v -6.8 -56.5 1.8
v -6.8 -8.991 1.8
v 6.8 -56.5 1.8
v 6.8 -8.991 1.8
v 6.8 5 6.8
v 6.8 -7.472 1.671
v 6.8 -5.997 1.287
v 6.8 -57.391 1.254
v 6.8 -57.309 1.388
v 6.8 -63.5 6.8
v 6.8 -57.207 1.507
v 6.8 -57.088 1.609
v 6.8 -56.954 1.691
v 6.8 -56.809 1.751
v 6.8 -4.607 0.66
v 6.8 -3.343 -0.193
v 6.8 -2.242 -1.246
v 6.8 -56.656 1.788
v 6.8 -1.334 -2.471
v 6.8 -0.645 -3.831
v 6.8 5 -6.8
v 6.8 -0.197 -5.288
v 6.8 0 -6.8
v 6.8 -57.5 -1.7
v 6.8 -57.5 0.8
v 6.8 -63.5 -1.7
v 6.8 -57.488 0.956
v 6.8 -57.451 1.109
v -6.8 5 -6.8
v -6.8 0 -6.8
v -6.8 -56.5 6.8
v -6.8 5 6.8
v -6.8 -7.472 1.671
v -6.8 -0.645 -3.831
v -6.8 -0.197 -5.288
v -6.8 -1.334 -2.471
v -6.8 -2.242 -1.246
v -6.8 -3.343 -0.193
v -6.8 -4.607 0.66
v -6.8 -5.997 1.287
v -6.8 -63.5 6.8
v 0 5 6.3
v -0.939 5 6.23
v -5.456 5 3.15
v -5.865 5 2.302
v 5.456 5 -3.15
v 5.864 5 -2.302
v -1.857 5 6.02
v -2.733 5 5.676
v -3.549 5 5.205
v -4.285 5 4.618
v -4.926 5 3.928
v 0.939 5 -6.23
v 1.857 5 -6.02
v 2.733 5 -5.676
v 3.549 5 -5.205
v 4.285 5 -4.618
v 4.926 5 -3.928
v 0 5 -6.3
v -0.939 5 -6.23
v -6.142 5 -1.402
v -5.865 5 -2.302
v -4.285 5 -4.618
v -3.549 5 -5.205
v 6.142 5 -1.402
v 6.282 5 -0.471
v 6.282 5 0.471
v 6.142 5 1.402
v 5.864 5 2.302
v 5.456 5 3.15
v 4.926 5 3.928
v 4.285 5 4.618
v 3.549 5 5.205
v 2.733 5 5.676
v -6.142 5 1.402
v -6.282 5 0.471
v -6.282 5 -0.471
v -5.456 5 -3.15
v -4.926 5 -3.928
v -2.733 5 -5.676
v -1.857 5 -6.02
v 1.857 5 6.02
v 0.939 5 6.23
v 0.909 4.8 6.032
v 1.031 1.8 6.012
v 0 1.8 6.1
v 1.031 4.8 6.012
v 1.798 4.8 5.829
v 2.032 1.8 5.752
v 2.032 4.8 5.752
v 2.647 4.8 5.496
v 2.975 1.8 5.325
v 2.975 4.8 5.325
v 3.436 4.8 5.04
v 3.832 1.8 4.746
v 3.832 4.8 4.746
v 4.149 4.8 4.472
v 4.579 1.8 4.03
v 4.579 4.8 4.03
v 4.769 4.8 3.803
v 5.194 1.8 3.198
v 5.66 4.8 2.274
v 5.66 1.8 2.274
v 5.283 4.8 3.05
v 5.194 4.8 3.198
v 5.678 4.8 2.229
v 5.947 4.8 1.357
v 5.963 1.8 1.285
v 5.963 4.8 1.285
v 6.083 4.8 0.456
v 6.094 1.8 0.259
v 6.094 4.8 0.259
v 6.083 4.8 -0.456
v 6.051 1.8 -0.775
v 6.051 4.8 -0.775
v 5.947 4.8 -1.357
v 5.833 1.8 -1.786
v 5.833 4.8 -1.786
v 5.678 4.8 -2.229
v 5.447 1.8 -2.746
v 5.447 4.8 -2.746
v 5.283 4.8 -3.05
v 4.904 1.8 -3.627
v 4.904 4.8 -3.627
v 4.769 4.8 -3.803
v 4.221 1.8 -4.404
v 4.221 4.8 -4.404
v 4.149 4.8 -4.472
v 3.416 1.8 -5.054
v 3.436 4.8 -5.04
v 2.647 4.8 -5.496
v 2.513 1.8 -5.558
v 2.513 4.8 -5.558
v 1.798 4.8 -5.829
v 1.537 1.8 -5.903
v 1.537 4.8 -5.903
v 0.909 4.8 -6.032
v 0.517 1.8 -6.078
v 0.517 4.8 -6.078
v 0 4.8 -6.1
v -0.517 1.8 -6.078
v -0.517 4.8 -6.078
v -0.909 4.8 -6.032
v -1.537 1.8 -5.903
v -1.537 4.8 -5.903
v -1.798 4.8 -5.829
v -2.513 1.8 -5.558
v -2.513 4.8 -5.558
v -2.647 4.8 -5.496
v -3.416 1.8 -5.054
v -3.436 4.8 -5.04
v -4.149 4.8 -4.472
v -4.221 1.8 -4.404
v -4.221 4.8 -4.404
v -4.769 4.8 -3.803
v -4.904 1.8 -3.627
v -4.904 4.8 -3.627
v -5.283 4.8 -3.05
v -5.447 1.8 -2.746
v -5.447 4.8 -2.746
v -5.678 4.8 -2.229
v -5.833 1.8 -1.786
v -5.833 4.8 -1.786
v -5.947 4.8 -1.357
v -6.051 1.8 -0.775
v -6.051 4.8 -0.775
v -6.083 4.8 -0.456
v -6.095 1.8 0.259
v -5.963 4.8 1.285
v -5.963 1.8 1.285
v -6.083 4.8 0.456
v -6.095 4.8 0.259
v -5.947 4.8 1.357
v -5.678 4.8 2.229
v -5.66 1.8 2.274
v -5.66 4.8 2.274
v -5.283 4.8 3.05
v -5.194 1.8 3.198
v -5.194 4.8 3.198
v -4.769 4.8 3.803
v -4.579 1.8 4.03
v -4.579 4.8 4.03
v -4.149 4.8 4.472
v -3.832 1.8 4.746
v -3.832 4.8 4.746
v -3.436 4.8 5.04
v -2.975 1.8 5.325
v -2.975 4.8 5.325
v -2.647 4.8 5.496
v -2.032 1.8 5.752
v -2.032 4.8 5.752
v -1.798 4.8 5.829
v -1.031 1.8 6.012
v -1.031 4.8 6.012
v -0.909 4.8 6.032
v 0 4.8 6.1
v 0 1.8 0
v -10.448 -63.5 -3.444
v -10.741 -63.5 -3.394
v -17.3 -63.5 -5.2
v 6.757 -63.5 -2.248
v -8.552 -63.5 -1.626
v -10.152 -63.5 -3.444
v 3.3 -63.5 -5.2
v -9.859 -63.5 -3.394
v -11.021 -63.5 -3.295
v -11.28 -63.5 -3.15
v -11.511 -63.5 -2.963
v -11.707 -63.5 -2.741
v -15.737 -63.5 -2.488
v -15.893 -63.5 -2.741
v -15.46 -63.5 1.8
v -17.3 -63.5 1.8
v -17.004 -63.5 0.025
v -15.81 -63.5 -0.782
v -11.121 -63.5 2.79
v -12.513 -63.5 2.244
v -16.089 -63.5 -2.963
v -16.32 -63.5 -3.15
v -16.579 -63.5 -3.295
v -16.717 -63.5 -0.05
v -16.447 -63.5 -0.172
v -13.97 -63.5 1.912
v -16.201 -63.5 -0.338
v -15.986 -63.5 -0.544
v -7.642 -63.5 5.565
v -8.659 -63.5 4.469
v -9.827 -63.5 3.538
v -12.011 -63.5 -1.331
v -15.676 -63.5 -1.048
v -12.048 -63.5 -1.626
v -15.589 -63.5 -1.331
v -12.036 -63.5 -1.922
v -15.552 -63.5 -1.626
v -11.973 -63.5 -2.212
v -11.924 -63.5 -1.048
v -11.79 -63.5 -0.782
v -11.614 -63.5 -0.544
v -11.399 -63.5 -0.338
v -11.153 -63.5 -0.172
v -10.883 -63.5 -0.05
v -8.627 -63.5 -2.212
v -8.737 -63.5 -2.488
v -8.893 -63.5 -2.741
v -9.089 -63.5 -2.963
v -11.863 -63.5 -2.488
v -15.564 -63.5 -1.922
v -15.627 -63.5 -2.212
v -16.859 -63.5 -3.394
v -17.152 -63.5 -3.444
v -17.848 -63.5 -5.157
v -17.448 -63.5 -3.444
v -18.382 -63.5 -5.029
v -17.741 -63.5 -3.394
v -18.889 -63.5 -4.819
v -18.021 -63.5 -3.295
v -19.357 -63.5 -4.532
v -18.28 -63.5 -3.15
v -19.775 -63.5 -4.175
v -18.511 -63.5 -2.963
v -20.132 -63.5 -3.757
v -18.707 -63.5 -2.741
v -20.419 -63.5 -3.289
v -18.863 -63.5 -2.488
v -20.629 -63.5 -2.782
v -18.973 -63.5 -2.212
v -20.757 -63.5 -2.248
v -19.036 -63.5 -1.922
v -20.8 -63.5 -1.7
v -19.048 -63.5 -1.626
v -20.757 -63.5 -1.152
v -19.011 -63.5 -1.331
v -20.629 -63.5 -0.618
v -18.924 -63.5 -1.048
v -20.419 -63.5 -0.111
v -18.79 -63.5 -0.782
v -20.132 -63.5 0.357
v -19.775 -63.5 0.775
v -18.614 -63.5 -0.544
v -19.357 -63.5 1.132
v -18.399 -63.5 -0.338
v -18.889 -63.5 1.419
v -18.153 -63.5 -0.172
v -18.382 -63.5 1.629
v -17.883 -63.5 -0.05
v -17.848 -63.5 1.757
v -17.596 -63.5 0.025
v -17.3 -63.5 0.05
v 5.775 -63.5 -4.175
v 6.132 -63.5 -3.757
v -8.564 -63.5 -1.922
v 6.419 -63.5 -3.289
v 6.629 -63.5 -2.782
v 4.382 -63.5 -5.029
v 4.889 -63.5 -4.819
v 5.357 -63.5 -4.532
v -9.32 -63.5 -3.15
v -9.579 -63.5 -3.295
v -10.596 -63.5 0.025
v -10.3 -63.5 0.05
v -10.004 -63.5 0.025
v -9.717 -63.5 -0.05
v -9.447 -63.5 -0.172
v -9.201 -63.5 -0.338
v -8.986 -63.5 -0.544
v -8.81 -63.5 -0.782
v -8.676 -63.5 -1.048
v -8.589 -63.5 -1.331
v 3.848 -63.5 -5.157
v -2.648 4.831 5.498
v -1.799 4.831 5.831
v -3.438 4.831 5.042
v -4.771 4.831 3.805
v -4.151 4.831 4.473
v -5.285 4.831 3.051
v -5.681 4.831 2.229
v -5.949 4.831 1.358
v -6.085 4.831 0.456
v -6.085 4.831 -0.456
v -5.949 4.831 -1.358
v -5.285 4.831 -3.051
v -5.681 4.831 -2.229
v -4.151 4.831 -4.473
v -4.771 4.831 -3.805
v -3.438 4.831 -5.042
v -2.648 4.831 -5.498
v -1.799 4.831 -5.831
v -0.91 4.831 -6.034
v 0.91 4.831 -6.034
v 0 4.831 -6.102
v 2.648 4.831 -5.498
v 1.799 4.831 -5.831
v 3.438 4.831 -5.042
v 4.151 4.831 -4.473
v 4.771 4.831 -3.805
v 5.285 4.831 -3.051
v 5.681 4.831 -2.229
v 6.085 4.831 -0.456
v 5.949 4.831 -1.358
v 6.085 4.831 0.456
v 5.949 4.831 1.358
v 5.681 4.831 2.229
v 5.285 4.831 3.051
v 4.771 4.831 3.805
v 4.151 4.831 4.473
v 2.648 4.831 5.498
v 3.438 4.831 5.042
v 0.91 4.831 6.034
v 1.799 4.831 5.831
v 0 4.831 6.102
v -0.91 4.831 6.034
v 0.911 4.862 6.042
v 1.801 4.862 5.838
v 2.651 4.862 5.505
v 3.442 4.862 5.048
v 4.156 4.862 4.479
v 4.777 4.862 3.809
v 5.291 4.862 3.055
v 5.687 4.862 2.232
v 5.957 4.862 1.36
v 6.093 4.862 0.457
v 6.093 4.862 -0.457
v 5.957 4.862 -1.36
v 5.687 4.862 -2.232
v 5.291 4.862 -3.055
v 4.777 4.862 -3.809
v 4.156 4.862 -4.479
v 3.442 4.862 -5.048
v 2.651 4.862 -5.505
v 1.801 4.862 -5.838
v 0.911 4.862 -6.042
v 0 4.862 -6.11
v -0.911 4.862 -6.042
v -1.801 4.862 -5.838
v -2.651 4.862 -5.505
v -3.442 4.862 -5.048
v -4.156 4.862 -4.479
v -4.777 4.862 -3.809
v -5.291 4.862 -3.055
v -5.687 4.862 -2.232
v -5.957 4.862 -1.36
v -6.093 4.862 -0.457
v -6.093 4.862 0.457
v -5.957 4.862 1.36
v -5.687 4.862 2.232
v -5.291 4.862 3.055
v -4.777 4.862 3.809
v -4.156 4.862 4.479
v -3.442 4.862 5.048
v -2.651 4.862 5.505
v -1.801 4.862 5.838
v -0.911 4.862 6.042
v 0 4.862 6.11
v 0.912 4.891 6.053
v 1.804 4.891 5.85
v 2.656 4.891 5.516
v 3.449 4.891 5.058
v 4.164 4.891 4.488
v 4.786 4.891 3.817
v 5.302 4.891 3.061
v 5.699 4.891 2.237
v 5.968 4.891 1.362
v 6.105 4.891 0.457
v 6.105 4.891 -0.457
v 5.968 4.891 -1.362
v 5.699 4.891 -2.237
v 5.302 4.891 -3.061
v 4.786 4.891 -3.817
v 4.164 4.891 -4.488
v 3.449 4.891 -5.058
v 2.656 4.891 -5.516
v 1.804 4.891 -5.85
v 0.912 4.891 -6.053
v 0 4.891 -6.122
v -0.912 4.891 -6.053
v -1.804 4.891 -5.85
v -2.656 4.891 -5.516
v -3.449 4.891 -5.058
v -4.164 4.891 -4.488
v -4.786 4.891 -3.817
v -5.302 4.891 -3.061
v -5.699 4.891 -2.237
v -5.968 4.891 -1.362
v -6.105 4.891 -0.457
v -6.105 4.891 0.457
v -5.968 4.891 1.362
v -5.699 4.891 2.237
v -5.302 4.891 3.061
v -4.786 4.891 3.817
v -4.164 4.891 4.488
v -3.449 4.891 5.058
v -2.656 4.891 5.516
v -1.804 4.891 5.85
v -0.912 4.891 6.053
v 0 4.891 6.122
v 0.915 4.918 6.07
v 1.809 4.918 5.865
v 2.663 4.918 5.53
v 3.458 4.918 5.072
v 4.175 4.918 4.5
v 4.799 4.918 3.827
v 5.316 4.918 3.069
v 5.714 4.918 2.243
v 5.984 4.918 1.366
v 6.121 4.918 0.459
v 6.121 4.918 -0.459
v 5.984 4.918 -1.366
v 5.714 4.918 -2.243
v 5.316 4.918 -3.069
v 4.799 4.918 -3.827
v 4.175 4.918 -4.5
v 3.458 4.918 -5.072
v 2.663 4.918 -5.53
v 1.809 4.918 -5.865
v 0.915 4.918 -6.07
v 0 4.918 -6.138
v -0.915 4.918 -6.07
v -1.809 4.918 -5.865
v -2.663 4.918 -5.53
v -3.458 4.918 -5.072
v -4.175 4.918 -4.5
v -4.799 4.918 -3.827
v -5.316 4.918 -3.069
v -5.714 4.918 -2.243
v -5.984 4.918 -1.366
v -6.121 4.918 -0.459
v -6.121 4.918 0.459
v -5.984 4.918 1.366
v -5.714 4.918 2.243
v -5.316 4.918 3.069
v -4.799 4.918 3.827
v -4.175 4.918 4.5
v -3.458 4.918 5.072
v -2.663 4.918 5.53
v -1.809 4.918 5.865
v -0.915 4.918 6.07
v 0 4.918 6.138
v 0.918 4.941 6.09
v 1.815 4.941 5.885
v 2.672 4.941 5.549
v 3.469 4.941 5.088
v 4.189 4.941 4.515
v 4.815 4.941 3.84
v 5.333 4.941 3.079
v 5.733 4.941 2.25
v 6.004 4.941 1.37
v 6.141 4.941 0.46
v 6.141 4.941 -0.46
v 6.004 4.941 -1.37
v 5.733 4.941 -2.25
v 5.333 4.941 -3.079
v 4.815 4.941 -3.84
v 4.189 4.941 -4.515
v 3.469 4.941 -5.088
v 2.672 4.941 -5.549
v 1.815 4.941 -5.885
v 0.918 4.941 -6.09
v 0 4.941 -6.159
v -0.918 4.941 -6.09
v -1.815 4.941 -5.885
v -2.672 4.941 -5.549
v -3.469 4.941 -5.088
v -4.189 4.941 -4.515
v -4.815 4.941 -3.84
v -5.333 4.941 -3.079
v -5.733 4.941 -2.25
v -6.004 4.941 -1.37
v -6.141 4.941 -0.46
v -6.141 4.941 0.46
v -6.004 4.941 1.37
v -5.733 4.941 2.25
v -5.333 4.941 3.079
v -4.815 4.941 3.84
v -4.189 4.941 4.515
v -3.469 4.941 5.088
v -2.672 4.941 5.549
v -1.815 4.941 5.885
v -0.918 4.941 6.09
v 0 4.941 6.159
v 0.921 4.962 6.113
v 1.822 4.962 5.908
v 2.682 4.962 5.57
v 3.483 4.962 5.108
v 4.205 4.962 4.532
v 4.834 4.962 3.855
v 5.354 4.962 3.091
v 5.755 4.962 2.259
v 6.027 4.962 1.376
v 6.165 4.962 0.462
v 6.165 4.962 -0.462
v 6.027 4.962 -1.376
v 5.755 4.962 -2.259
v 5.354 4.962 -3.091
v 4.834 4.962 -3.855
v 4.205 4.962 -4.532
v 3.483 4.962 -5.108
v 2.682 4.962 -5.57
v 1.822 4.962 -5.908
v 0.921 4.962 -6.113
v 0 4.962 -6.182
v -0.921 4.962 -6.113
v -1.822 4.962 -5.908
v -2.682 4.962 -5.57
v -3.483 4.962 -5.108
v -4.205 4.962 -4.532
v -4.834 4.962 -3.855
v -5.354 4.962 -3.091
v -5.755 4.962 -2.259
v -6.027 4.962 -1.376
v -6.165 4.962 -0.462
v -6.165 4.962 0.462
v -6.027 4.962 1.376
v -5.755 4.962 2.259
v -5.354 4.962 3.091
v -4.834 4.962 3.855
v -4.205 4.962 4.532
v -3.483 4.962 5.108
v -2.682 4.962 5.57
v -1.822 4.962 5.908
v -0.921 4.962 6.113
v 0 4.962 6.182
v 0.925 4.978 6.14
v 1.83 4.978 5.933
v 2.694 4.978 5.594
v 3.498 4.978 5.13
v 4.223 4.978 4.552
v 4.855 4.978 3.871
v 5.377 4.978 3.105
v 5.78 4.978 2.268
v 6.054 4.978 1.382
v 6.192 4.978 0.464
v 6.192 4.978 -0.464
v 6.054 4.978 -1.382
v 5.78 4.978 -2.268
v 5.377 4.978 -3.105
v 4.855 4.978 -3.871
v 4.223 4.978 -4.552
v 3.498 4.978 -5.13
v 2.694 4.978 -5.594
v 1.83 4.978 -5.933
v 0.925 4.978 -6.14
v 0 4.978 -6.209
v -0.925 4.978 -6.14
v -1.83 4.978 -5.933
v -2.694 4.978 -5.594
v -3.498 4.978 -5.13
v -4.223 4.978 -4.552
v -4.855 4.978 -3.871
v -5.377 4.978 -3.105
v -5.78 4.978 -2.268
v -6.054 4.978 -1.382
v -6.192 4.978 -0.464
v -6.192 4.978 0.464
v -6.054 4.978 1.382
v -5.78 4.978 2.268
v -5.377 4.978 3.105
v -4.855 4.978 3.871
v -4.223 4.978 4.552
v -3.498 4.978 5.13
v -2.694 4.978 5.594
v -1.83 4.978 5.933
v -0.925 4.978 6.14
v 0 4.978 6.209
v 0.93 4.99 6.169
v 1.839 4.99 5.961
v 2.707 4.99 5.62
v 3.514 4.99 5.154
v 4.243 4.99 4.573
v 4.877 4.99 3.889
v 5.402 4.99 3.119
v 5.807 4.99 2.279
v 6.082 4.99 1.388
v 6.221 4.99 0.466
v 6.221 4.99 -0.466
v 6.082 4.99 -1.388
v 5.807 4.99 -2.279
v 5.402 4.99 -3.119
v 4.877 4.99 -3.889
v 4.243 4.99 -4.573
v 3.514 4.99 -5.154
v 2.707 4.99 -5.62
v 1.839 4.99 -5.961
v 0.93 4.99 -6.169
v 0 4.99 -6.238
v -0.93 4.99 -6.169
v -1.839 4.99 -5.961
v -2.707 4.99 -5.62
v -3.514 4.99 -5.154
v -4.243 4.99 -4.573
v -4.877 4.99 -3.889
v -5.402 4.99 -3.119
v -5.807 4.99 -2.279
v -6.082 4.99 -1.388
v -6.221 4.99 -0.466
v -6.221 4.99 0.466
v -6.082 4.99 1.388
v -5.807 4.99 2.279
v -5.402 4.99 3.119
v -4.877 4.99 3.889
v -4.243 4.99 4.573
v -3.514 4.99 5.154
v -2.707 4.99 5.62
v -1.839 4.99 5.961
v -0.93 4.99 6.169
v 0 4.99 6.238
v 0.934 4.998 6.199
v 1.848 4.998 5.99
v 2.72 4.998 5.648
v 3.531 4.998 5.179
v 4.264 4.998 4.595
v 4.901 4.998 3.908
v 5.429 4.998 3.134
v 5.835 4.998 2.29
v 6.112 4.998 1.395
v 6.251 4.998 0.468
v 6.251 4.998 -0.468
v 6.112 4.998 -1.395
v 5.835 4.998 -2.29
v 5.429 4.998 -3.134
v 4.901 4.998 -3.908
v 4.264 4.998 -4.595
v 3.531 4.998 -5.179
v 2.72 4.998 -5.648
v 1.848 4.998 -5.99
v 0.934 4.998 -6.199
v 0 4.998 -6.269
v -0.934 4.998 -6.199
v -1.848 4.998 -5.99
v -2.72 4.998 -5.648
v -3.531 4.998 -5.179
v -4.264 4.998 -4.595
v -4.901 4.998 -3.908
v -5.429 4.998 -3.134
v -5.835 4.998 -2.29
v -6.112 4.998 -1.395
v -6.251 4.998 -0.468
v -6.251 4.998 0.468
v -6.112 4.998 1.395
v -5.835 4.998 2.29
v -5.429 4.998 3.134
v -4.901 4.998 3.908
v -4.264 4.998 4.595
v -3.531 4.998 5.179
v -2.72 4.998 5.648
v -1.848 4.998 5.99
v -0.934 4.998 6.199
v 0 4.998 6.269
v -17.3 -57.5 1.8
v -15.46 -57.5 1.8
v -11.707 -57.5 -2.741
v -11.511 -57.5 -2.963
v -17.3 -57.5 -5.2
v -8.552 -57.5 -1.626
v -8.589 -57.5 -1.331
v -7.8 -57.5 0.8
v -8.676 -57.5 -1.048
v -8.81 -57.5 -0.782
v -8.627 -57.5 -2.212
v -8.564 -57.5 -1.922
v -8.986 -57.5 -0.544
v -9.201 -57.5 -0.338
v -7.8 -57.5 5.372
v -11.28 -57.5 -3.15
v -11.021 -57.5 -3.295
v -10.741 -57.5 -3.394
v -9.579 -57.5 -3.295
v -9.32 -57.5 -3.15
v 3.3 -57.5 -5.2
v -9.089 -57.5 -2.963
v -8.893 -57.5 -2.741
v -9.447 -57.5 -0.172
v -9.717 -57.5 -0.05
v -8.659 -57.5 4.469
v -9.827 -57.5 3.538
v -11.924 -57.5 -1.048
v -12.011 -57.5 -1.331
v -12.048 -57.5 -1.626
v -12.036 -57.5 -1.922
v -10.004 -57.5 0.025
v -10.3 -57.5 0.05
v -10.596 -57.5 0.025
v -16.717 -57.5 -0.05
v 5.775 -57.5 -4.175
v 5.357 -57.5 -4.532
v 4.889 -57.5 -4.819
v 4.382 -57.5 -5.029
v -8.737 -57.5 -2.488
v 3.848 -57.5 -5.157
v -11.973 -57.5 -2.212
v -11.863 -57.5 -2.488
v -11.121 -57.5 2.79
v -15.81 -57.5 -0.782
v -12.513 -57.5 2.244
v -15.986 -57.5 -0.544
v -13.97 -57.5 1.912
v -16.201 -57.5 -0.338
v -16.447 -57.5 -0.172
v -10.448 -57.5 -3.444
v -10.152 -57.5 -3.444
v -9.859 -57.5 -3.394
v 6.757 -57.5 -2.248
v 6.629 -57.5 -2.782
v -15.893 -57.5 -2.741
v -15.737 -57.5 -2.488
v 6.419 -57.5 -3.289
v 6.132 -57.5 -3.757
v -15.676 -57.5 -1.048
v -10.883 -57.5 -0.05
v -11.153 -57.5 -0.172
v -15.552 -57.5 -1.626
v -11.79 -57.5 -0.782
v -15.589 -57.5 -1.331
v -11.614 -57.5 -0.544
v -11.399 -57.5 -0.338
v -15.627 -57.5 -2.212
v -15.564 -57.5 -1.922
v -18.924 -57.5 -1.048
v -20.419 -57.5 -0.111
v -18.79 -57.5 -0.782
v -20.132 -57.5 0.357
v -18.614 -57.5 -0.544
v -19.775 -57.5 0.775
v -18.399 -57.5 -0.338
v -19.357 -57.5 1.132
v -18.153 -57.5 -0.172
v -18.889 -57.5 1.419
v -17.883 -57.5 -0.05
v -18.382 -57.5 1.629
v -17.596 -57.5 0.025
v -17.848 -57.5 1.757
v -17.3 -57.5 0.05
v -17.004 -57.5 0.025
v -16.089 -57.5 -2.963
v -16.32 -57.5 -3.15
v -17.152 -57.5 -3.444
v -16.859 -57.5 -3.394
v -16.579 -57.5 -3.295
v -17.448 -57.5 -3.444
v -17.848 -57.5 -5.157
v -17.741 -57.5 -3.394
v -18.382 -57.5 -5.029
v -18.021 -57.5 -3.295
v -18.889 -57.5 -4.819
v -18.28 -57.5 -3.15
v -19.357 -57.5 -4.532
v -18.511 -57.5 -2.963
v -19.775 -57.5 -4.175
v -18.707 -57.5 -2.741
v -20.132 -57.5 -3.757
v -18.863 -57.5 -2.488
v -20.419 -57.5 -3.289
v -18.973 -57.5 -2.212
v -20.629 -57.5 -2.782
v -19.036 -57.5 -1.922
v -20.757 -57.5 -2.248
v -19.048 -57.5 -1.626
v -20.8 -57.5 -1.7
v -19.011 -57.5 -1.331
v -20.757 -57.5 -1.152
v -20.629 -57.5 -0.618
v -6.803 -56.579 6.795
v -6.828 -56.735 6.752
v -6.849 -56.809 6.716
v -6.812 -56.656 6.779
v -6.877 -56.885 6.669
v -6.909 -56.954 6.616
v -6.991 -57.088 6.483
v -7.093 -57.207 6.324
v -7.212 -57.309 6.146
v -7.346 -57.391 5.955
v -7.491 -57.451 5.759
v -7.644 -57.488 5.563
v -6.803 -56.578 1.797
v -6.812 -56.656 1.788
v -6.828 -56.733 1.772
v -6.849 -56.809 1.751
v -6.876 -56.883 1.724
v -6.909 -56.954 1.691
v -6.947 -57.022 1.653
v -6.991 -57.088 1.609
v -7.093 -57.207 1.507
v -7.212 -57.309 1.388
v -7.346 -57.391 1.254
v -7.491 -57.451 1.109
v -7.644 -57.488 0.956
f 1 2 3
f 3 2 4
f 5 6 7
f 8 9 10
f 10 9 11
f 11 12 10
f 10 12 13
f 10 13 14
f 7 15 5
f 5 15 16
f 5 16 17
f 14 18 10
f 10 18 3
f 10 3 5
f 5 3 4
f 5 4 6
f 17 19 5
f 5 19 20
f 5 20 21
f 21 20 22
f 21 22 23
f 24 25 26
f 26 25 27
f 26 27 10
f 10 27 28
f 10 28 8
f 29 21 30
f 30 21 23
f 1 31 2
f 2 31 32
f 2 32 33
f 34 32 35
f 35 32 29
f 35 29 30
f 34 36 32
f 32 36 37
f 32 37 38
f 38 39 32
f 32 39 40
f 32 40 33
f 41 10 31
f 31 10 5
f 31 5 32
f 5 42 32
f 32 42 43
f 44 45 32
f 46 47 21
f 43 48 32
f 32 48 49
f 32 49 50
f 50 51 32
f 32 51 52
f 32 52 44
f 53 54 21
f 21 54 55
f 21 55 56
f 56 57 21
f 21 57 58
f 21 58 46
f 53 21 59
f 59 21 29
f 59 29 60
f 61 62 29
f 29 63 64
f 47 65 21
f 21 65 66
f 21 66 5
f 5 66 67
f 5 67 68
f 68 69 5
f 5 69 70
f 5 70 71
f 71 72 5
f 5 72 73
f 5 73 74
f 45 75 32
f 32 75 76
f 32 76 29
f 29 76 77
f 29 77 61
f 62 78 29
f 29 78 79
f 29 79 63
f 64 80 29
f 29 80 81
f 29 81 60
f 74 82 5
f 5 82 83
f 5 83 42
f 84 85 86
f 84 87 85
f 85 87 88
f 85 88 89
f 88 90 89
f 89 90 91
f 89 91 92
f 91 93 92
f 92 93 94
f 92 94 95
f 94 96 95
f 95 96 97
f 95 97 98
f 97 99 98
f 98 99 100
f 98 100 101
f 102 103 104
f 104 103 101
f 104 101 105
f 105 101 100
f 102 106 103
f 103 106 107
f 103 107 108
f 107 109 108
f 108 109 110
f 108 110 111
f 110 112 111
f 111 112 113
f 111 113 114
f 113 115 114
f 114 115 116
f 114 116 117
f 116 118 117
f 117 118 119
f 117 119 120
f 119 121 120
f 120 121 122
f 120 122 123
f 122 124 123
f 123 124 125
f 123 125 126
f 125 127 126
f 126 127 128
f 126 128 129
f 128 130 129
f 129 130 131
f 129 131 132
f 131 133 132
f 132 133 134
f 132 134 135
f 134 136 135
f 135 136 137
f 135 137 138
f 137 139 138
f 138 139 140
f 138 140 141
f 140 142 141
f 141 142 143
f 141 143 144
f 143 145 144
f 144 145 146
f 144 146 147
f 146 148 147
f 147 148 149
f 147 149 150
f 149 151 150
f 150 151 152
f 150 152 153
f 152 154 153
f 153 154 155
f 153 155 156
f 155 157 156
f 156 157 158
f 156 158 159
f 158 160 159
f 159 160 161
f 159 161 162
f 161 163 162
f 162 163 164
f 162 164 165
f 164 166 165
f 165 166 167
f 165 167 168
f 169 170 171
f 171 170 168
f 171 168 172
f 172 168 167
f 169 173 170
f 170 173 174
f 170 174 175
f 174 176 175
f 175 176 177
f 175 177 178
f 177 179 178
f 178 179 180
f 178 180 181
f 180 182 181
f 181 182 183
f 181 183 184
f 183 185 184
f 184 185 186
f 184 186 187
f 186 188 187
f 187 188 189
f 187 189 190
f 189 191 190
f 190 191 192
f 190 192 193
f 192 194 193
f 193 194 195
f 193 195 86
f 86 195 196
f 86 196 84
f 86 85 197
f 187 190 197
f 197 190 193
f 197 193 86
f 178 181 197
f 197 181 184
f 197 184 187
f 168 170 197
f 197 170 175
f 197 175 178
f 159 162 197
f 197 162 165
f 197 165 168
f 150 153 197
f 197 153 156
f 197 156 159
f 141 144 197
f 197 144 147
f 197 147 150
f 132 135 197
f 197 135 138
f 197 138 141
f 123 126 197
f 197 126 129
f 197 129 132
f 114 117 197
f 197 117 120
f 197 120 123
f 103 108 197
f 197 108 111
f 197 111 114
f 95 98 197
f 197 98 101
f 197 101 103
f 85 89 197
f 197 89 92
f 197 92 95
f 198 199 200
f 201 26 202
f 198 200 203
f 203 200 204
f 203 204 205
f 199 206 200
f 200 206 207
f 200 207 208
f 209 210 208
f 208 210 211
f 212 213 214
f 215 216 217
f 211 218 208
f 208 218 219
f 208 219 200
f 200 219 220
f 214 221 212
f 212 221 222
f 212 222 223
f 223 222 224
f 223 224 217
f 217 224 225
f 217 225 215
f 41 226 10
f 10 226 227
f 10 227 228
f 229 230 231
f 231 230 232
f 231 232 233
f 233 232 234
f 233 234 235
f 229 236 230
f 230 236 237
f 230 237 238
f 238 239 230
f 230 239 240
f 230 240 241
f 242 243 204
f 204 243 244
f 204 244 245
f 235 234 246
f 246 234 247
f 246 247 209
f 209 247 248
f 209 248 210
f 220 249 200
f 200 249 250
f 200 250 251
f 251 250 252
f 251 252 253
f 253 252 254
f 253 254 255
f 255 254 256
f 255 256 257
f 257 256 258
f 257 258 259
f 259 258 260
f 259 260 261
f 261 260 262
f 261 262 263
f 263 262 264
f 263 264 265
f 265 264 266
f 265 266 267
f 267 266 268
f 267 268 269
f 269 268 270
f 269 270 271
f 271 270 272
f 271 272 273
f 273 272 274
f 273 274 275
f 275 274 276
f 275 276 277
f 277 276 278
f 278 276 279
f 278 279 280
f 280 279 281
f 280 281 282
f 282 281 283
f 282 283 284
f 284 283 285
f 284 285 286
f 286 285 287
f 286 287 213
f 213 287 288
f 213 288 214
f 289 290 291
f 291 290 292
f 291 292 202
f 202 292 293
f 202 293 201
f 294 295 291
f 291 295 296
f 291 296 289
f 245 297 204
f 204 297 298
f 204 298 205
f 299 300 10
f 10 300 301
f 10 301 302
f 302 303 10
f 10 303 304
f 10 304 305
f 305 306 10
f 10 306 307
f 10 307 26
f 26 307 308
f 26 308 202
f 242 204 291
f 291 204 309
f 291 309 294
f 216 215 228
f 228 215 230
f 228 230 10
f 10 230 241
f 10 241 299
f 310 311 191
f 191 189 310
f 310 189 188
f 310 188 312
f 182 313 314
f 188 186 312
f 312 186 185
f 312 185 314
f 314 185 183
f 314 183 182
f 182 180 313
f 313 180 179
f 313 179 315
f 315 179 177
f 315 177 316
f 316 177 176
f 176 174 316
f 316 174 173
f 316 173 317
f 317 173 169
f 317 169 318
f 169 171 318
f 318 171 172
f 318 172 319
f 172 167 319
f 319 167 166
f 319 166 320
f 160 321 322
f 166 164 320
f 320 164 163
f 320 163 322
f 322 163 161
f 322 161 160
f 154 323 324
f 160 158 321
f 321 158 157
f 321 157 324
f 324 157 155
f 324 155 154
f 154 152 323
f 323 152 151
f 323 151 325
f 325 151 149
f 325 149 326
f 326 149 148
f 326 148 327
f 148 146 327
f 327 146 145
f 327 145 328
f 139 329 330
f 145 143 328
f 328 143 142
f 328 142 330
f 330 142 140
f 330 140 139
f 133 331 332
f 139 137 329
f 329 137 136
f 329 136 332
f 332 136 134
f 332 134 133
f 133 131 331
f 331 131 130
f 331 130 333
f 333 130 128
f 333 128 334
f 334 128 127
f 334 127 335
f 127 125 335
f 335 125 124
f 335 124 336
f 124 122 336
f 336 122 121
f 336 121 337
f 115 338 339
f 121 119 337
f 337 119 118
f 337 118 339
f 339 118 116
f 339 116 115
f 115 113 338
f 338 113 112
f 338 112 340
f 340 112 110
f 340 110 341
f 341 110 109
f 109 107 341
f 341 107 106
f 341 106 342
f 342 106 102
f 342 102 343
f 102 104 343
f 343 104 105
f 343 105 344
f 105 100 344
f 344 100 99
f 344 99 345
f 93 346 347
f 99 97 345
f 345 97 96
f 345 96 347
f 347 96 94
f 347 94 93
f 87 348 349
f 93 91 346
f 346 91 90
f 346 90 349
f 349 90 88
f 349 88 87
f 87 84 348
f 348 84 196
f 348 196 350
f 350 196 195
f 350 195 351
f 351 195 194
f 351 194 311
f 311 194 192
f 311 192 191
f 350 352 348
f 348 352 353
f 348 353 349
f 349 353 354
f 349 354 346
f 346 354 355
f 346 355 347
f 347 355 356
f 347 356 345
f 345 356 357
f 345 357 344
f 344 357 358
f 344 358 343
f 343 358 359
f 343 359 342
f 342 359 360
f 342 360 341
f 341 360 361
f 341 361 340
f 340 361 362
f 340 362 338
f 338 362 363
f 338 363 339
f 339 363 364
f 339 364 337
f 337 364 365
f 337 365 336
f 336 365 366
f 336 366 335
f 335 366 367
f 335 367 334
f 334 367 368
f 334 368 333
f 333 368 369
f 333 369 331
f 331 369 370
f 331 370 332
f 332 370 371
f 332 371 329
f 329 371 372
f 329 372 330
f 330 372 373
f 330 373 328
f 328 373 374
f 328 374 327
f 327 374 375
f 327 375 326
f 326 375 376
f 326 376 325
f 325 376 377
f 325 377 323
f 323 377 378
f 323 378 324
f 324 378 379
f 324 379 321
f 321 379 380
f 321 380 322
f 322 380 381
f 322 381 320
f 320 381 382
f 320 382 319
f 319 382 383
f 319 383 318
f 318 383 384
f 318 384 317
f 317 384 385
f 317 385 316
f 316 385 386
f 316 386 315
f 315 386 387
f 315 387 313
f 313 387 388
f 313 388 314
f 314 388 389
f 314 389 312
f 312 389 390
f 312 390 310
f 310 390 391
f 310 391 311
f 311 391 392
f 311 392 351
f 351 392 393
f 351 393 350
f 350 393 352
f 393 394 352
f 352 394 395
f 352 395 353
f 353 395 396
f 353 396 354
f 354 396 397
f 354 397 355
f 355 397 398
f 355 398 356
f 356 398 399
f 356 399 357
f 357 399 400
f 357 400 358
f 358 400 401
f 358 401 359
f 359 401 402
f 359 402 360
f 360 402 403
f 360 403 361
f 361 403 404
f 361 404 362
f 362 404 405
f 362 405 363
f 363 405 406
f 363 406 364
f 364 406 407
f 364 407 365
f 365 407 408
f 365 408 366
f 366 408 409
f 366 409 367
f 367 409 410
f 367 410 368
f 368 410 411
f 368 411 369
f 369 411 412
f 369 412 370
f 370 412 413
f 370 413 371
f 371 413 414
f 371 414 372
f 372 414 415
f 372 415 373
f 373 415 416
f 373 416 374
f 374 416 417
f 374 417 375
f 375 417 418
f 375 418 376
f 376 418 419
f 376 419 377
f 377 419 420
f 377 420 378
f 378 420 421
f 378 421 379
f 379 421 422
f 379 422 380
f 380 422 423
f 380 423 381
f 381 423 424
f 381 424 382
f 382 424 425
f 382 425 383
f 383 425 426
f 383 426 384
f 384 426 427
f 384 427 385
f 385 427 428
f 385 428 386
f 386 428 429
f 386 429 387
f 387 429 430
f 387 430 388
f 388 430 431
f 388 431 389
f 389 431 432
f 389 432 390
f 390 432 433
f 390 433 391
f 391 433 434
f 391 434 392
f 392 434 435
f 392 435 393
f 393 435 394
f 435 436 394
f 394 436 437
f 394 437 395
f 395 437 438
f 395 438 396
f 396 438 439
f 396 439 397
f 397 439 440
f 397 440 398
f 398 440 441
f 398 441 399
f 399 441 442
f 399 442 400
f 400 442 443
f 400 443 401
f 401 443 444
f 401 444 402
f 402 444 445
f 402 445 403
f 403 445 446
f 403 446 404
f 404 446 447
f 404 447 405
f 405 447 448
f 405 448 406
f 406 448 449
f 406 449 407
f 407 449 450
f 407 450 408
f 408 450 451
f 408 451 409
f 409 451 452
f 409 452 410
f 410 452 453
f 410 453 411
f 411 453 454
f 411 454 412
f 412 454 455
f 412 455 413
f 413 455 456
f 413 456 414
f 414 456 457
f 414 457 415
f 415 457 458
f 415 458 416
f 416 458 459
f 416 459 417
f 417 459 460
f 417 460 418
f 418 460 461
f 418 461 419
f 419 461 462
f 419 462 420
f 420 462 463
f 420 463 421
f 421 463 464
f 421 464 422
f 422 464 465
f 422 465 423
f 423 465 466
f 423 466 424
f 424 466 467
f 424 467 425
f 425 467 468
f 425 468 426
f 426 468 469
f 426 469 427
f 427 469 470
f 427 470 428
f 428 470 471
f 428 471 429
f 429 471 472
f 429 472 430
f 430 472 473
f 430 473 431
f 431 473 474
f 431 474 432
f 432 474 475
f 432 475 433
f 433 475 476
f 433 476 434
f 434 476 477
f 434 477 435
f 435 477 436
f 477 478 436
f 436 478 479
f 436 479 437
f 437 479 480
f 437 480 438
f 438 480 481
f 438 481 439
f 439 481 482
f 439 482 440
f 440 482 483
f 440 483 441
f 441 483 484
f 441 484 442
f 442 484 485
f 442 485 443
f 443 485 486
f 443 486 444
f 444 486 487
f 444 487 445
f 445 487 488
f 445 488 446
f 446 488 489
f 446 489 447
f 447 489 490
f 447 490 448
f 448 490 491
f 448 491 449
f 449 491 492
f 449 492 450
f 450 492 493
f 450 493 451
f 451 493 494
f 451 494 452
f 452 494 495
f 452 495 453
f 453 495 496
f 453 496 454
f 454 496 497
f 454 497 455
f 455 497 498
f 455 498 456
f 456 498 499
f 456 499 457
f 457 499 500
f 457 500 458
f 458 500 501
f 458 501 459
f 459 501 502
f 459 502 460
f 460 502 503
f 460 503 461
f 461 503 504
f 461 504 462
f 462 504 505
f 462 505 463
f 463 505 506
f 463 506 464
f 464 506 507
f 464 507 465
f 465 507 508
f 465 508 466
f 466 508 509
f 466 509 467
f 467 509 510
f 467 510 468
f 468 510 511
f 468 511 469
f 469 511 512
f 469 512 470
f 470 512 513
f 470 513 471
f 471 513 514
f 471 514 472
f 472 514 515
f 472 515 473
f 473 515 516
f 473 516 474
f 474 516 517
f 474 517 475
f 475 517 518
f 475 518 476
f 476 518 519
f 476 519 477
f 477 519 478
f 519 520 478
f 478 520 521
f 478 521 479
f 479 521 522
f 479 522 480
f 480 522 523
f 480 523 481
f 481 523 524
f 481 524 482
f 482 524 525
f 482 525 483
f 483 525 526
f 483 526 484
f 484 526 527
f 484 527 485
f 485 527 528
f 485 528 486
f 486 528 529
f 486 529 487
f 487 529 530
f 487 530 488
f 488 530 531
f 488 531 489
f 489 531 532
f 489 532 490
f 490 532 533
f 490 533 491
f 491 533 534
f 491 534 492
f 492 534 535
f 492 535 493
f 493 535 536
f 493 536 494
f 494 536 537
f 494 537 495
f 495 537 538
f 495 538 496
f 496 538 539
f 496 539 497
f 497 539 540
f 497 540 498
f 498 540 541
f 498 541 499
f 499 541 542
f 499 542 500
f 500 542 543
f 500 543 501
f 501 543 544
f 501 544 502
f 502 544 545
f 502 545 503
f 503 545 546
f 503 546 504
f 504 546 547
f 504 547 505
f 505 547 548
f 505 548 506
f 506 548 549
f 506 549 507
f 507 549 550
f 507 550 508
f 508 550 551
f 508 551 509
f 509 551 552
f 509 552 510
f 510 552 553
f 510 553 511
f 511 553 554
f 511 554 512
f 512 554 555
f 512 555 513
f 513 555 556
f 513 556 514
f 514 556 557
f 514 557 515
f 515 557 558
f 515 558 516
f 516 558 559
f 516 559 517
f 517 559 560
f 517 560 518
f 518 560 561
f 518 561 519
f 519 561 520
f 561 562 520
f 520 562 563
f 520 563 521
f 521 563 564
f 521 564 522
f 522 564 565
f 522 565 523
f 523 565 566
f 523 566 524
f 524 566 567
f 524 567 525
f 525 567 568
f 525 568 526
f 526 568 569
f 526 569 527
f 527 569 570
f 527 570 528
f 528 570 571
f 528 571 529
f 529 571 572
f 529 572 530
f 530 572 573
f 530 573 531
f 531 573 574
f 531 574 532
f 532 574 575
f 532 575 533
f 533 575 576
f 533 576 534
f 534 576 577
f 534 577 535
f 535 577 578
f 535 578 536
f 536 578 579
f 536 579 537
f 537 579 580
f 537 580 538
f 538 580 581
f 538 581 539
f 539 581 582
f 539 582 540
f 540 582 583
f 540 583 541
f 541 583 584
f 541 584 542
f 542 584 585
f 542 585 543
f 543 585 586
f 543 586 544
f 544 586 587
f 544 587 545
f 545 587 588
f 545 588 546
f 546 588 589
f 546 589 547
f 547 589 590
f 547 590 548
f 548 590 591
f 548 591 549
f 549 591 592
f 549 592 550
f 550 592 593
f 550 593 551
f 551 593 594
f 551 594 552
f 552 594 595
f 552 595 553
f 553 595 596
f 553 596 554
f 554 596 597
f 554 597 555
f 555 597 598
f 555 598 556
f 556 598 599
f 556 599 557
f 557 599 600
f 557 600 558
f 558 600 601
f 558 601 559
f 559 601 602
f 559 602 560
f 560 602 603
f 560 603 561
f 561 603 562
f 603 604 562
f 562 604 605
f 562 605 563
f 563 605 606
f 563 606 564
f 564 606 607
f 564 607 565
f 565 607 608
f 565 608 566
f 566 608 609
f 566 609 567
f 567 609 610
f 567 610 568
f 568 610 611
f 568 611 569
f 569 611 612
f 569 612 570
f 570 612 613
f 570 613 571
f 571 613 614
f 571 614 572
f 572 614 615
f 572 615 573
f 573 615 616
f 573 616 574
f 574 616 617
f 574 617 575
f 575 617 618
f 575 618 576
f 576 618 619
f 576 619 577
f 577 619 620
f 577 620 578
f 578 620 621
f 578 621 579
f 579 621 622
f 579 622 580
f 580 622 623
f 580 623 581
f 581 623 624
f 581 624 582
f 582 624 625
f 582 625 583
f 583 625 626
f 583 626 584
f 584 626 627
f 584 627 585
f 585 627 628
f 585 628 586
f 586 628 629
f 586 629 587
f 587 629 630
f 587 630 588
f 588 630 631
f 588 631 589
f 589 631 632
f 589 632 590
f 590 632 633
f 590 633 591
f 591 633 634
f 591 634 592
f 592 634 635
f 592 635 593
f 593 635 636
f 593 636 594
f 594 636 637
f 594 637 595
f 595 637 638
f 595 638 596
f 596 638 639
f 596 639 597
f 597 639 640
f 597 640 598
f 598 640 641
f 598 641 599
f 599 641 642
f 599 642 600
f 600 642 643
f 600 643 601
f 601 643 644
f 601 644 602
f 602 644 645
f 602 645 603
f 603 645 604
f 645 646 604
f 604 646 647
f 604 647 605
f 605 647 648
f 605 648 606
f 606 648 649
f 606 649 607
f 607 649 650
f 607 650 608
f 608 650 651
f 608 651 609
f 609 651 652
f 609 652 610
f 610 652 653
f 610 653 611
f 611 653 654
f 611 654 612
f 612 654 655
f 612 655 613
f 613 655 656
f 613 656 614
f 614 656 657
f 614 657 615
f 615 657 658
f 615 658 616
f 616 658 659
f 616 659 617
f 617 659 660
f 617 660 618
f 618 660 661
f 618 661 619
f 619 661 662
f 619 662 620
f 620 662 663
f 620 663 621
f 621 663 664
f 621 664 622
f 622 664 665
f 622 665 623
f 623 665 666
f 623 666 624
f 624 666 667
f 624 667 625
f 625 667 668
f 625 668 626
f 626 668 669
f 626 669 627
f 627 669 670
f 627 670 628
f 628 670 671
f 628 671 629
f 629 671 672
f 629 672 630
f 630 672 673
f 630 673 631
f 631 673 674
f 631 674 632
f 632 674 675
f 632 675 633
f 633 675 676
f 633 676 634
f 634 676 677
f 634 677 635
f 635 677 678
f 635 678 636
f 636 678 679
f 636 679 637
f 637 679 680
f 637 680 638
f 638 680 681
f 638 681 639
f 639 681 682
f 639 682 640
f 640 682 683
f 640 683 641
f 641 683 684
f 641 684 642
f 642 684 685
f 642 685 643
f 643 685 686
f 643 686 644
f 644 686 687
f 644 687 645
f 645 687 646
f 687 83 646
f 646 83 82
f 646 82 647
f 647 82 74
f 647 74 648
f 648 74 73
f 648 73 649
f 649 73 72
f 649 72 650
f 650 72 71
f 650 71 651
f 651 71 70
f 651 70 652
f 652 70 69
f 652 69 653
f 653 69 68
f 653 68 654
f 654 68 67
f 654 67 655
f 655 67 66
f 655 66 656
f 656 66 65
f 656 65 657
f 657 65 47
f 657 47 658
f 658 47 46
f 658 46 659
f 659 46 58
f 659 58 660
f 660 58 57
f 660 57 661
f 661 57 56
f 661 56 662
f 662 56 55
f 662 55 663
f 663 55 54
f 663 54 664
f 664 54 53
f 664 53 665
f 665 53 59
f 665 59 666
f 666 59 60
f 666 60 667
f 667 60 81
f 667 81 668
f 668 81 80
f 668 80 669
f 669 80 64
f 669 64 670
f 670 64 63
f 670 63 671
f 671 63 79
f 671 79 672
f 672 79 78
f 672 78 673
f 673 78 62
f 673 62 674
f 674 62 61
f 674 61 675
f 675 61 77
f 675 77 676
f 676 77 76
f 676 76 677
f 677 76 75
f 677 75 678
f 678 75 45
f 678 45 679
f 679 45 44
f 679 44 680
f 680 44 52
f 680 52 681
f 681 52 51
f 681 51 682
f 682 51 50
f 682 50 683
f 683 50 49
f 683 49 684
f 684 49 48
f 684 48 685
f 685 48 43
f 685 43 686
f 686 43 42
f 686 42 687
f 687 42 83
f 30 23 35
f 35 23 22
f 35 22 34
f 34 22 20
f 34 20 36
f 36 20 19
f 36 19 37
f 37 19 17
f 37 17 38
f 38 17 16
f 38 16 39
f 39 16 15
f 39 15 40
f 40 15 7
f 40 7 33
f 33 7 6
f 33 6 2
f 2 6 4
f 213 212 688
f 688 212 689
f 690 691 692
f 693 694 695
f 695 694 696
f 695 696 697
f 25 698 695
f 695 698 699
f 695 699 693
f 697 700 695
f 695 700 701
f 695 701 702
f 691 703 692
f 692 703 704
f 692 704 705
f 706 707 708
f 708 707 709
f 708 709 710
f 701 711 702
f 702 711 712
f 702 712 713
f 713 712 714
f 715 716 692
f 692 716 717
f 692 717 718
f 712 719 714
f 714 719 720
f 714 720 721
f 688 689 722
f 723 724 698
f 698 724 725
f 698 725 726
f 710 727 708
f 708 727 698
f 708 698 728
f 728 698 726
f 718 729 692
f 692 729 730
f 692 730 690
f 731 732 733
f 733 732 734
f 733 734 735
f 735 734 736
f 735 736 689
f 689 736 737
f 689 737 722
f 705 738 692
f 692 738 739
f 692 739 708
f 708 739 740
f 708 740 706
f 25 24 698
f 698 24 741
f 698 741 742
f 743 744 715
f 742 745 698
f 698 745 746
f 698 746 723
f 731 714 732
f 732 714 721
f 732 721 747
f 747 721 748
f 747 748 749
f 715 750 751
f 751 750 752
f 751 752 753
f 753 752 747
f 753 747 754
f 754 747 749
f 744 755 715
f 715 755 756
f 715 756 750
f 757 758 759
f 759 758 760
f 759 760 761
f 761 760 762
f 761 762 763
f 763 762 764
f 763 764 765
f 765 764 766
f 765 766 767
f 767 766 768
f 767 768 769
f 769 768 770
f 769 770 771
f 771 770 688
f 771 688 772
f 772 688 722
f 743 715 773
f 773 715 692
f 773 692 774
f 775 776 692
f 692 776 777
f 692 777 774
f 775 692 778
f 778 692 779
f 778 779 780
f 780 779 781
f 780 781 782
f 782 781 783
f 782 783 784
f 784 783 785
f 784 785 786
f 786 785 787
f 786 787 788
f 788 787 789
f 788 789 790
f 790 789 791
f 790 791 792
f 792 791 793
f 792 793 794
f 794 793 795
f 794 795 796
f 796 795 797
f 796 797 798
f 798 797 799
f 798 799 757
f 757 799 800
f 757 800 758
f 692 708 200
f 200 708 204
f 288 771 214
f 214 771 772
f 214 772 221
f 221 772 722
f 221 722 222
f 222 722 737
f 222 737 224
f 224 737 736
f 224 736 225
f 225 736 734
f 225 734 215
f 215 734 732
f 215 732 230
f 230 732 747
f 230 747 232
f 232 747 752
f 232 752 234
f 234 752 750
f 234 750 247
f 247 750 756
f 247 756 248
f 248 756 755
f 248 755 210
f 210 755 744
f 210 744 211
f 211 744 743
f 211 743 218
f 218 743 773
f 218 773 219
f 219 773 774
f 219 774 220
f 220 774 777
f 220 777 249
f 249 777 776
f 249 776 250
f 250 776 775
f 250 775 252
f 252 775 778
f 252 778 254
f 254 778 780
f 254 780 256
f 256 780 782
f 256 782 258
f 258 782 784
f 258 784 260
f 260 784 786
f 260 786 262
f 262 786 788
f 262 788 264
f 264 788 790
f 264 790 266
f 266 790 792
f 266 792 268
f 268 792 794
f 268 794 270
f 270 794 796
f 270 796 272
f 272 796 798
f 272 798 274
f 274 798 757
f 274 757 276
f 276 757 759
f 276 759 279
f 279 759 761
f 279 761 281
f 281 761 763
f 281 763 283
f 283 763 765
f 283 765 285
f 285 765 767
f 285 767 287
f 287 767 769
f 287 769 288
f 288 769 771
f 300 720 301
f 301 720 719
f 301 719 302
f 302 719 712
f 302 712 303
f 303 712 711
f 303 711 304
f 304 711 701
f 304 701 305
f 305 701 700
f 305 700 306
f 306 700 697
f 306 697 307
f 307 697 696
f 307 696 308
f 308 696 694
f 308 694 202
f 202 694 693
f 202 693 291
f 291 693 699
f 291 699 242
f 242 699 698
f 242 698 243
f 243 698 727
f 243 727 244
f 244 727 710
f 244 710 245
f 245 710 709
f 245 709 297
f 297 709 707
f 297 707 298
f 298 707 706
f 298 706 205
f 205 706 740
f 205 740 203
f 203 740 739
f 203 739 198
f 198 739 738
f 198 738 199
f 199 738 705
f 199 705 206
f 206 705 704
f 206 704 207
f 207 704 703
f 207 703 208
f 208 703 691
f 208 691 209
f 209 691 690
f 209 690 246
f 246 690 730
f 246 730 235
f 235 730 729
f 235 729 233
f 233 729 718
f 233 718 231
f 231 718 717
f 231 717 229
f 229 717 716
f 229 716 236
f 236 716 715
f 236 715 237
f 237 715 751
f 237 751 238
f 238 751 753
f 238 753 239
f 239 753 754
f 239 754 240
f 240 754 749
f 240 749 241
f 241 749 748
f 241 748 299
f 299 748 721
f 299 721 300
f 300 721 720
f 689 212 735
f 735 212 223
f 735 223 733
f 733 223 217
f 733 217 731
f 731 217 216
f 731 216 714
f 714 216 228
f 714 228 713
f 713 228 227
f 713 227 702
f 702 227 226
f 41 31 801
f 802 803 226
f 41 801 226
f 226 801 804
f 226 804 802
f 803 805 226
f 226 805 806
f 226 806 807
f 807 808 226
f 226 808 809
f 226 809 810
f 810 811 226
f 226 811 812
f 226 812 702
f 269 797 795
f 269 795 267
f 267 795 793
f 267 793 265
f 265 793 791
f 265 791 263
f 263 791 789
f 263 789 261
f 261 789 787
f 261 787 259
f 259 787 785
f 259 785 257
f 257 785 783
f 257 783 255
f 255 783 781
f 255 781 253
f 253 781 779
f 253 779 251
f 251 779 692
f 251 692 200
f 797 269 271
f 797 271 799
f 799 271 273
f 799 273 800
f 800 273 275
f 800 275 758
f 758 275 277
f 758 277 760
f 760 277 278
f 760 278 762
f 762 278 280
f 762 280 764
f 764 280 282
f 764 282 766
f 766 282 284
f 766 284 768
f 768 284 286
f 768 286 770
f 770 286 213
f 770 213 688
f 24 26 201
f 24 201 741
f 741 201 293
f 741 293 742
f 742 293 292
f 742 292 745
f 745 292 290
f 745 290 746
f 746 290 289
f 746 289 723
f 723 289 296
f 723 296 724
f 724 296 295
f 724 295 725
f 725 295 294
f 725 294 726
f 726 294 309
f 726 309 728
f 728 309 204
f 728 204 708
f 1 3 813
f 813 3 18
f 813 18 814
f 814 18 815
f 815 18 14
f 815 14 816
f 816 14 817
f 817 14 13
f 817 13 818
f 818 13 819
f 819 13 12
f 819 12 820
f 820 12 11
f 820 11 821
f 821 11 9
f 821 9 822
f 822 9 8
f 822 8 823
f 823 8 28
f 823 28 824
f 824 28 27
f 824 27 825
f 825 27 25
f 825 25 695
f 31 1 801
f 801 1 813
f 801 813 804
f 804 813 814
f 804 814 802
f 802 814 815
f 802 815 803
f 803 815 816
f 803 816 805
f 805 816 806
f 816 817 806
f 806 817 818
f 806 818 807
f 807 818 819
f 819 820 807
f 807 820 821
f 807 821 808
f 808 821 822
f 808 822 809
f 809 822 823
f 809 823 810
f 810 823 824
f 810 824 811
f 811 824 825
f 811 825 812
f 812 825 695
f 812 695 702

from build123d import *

# Parameters (mm, degrees)
SKETCH1_W           = 13.6
SKETCH1_H           = 13.6
BOSS_EXTRUDE1_DEPTH = 5
SKETCH2_R           = 6.1
CUT_EXTRUDE1_DEPTH  = 3.2
SKETCH3_W           = 13.6
SKETCH3_H           = 5
BOSS_EXTRUDE2_DEPTH = 63.5
FILLET1_R           = 0.2
FILLET2_R           = 9
SKETCH10_W          = 27.6
SKETCH10_H          = 6
BOSS_EXTRUDE5_DEPTH = 7
SKETCH11_R          = 1.75
CUT_EXTRUDE4_DEPTH  = 67.220314104
FILLET3_R           = 10
FILLET4_R           = 3.5
FILLET5_R           = 1


# Some blends are built 0.0001 mm under size
with BuildPart() as part:
    # Sketch1 → Boss-Extrude1 (new body)
    with BuildSketch(Plane(origin=(0, 0, 0), x_dir=(1, 0, 0), z_dir=(0, 1, 0))):
        Rectangle(SKETCH1_W, SKETCH1_H)
    extrude(amount=BOSS_EXTRUDE1_DEPTH)

    # Sketch2 → Cut-Extrude1 (cut)
    with BuildSketch(Plane(origin=(0, 5, 0), x_dir=(1, 0, 0), z_dir=(0, 1, 0))):
        with Locations(Location((0, 0, 0), (0, 0, 270))):
            Circle(SKETCH2_R)
    extrude(amount=-CUT_EXTRUDE1_DEPTH, mode=Mode.SUBTRACT)

    # Sketch3 → Boss-Extrude2 (add)
    with BuildSketch(Plane.XZ):
        with Locations((0, 4.3)):
            Rectangle(SKETCH3_W, SKETCH3_H)
    extrude(amount=BOSS_EXTRUDE2_DEPTH)

    # Fillet1
    fillet1_edges = [part.edges().sort_by_distance(p)[0] for p in [
        (0, 5, -6.1),
    ]]
    fillet(fillet1_edges, radius=FILLET1_R)

    # Fillet2
    # the kernel refuses this fillet: 9 mm, written as the material it adds along each edge
    with BuildSketch(Plane(origin=(6.8, 0, 1.8), x_dir=(0, 0, -1), z_dir=(-1, 0, 0))) as fillet2_piece_1:
        with BuildLine():
            CenterArc((9, 8.991106717), FILLET2_R, 180, 87.452681817)
            Line((0, 8.991106717), (-0.18, 8.991106717))
            Line((-0.18, 8.991106717), (-0.18, 0))
            Line((-0.18, 0), (0, -0.18))
            ThreePointArc((0, -0.18), (4.3, -0.18), (8.592, -0.179822134))
            Line((8.592, -0.179822134), (8.6, 0))
        make_face()
    extrude(amount=13.6)

    # Sketch10 → Boss-Extrude5 (add)
    with BuildSketch(Plane(origin=(0, 0, 1.8), x_dir=(-1, 0, 0), z_dir=(0, 0, -1))):
        with Locations((7, -60.5)):
            Rectangle(SKETCH10_W, SKETCH10_H)
    extrude(amount=BOSS_EXTRUDE5_DEPTH)

    # Sketch11 → Cut-Extrude4 (cut, through all)
    with BuildSketch(Plane(origin=(0, -57.5, 0), x_dir=(1, 0, 0), z_dir=(0, 1, 0))):
        with Locations(Location((-10.3, 1.7, 0), (0, 0, 270))):
            Circle(SKETCH11_R)
        with Locations(Location((-17.3, 1.7, 0), (0, 0, 270))):
            Circle(SKETCH11_R)
    extrude(amount=-CUT_EXTRUDE4_DEPTH, mode=Mode.SUBTRACT)

    # Fillet3
    # the kernel refuses this fillet: 10 mm, written as the material it adds along each edge
    with BuildSketch(Plane(origin=(-6.8, -57.5, 1.8), x_dir=(0, 0, 1), z_dir=(0, -1, 0))) as fillet3_piece_1:
        with BuildLine():
            CenterArc((10, 8.660254038), FILLET3_R, 180, 60)
            Line((0, 8.660254038), (0, 0))
            Line((0, 0), (5, 0))
        make_face()
    extrude(amount=6)

    # Fillet4
    fillet4_edges = [part.edges().sort_by_distance(p)[0] for p in [
        (-20.8, -60.5, 1.8),
        (-20.8, -60.5, -5.2),
        (6.8, -60.5, -5.2),
    ]]
    fillet(fillet4_edges, radius=FILLET4_R - 0.0001)  # a hair under: the kernel refuses the full size

    # Fillet5
    fillet5_edges = [part.edges().sort_by_distance(p)[0] for p in [
        (0, -57.5, 1.8),
        (-6.8, -57.5, 4.3),
    ]]
    fillet(fillet5_edges, radius=FILLET5_R)


solid = part.part
